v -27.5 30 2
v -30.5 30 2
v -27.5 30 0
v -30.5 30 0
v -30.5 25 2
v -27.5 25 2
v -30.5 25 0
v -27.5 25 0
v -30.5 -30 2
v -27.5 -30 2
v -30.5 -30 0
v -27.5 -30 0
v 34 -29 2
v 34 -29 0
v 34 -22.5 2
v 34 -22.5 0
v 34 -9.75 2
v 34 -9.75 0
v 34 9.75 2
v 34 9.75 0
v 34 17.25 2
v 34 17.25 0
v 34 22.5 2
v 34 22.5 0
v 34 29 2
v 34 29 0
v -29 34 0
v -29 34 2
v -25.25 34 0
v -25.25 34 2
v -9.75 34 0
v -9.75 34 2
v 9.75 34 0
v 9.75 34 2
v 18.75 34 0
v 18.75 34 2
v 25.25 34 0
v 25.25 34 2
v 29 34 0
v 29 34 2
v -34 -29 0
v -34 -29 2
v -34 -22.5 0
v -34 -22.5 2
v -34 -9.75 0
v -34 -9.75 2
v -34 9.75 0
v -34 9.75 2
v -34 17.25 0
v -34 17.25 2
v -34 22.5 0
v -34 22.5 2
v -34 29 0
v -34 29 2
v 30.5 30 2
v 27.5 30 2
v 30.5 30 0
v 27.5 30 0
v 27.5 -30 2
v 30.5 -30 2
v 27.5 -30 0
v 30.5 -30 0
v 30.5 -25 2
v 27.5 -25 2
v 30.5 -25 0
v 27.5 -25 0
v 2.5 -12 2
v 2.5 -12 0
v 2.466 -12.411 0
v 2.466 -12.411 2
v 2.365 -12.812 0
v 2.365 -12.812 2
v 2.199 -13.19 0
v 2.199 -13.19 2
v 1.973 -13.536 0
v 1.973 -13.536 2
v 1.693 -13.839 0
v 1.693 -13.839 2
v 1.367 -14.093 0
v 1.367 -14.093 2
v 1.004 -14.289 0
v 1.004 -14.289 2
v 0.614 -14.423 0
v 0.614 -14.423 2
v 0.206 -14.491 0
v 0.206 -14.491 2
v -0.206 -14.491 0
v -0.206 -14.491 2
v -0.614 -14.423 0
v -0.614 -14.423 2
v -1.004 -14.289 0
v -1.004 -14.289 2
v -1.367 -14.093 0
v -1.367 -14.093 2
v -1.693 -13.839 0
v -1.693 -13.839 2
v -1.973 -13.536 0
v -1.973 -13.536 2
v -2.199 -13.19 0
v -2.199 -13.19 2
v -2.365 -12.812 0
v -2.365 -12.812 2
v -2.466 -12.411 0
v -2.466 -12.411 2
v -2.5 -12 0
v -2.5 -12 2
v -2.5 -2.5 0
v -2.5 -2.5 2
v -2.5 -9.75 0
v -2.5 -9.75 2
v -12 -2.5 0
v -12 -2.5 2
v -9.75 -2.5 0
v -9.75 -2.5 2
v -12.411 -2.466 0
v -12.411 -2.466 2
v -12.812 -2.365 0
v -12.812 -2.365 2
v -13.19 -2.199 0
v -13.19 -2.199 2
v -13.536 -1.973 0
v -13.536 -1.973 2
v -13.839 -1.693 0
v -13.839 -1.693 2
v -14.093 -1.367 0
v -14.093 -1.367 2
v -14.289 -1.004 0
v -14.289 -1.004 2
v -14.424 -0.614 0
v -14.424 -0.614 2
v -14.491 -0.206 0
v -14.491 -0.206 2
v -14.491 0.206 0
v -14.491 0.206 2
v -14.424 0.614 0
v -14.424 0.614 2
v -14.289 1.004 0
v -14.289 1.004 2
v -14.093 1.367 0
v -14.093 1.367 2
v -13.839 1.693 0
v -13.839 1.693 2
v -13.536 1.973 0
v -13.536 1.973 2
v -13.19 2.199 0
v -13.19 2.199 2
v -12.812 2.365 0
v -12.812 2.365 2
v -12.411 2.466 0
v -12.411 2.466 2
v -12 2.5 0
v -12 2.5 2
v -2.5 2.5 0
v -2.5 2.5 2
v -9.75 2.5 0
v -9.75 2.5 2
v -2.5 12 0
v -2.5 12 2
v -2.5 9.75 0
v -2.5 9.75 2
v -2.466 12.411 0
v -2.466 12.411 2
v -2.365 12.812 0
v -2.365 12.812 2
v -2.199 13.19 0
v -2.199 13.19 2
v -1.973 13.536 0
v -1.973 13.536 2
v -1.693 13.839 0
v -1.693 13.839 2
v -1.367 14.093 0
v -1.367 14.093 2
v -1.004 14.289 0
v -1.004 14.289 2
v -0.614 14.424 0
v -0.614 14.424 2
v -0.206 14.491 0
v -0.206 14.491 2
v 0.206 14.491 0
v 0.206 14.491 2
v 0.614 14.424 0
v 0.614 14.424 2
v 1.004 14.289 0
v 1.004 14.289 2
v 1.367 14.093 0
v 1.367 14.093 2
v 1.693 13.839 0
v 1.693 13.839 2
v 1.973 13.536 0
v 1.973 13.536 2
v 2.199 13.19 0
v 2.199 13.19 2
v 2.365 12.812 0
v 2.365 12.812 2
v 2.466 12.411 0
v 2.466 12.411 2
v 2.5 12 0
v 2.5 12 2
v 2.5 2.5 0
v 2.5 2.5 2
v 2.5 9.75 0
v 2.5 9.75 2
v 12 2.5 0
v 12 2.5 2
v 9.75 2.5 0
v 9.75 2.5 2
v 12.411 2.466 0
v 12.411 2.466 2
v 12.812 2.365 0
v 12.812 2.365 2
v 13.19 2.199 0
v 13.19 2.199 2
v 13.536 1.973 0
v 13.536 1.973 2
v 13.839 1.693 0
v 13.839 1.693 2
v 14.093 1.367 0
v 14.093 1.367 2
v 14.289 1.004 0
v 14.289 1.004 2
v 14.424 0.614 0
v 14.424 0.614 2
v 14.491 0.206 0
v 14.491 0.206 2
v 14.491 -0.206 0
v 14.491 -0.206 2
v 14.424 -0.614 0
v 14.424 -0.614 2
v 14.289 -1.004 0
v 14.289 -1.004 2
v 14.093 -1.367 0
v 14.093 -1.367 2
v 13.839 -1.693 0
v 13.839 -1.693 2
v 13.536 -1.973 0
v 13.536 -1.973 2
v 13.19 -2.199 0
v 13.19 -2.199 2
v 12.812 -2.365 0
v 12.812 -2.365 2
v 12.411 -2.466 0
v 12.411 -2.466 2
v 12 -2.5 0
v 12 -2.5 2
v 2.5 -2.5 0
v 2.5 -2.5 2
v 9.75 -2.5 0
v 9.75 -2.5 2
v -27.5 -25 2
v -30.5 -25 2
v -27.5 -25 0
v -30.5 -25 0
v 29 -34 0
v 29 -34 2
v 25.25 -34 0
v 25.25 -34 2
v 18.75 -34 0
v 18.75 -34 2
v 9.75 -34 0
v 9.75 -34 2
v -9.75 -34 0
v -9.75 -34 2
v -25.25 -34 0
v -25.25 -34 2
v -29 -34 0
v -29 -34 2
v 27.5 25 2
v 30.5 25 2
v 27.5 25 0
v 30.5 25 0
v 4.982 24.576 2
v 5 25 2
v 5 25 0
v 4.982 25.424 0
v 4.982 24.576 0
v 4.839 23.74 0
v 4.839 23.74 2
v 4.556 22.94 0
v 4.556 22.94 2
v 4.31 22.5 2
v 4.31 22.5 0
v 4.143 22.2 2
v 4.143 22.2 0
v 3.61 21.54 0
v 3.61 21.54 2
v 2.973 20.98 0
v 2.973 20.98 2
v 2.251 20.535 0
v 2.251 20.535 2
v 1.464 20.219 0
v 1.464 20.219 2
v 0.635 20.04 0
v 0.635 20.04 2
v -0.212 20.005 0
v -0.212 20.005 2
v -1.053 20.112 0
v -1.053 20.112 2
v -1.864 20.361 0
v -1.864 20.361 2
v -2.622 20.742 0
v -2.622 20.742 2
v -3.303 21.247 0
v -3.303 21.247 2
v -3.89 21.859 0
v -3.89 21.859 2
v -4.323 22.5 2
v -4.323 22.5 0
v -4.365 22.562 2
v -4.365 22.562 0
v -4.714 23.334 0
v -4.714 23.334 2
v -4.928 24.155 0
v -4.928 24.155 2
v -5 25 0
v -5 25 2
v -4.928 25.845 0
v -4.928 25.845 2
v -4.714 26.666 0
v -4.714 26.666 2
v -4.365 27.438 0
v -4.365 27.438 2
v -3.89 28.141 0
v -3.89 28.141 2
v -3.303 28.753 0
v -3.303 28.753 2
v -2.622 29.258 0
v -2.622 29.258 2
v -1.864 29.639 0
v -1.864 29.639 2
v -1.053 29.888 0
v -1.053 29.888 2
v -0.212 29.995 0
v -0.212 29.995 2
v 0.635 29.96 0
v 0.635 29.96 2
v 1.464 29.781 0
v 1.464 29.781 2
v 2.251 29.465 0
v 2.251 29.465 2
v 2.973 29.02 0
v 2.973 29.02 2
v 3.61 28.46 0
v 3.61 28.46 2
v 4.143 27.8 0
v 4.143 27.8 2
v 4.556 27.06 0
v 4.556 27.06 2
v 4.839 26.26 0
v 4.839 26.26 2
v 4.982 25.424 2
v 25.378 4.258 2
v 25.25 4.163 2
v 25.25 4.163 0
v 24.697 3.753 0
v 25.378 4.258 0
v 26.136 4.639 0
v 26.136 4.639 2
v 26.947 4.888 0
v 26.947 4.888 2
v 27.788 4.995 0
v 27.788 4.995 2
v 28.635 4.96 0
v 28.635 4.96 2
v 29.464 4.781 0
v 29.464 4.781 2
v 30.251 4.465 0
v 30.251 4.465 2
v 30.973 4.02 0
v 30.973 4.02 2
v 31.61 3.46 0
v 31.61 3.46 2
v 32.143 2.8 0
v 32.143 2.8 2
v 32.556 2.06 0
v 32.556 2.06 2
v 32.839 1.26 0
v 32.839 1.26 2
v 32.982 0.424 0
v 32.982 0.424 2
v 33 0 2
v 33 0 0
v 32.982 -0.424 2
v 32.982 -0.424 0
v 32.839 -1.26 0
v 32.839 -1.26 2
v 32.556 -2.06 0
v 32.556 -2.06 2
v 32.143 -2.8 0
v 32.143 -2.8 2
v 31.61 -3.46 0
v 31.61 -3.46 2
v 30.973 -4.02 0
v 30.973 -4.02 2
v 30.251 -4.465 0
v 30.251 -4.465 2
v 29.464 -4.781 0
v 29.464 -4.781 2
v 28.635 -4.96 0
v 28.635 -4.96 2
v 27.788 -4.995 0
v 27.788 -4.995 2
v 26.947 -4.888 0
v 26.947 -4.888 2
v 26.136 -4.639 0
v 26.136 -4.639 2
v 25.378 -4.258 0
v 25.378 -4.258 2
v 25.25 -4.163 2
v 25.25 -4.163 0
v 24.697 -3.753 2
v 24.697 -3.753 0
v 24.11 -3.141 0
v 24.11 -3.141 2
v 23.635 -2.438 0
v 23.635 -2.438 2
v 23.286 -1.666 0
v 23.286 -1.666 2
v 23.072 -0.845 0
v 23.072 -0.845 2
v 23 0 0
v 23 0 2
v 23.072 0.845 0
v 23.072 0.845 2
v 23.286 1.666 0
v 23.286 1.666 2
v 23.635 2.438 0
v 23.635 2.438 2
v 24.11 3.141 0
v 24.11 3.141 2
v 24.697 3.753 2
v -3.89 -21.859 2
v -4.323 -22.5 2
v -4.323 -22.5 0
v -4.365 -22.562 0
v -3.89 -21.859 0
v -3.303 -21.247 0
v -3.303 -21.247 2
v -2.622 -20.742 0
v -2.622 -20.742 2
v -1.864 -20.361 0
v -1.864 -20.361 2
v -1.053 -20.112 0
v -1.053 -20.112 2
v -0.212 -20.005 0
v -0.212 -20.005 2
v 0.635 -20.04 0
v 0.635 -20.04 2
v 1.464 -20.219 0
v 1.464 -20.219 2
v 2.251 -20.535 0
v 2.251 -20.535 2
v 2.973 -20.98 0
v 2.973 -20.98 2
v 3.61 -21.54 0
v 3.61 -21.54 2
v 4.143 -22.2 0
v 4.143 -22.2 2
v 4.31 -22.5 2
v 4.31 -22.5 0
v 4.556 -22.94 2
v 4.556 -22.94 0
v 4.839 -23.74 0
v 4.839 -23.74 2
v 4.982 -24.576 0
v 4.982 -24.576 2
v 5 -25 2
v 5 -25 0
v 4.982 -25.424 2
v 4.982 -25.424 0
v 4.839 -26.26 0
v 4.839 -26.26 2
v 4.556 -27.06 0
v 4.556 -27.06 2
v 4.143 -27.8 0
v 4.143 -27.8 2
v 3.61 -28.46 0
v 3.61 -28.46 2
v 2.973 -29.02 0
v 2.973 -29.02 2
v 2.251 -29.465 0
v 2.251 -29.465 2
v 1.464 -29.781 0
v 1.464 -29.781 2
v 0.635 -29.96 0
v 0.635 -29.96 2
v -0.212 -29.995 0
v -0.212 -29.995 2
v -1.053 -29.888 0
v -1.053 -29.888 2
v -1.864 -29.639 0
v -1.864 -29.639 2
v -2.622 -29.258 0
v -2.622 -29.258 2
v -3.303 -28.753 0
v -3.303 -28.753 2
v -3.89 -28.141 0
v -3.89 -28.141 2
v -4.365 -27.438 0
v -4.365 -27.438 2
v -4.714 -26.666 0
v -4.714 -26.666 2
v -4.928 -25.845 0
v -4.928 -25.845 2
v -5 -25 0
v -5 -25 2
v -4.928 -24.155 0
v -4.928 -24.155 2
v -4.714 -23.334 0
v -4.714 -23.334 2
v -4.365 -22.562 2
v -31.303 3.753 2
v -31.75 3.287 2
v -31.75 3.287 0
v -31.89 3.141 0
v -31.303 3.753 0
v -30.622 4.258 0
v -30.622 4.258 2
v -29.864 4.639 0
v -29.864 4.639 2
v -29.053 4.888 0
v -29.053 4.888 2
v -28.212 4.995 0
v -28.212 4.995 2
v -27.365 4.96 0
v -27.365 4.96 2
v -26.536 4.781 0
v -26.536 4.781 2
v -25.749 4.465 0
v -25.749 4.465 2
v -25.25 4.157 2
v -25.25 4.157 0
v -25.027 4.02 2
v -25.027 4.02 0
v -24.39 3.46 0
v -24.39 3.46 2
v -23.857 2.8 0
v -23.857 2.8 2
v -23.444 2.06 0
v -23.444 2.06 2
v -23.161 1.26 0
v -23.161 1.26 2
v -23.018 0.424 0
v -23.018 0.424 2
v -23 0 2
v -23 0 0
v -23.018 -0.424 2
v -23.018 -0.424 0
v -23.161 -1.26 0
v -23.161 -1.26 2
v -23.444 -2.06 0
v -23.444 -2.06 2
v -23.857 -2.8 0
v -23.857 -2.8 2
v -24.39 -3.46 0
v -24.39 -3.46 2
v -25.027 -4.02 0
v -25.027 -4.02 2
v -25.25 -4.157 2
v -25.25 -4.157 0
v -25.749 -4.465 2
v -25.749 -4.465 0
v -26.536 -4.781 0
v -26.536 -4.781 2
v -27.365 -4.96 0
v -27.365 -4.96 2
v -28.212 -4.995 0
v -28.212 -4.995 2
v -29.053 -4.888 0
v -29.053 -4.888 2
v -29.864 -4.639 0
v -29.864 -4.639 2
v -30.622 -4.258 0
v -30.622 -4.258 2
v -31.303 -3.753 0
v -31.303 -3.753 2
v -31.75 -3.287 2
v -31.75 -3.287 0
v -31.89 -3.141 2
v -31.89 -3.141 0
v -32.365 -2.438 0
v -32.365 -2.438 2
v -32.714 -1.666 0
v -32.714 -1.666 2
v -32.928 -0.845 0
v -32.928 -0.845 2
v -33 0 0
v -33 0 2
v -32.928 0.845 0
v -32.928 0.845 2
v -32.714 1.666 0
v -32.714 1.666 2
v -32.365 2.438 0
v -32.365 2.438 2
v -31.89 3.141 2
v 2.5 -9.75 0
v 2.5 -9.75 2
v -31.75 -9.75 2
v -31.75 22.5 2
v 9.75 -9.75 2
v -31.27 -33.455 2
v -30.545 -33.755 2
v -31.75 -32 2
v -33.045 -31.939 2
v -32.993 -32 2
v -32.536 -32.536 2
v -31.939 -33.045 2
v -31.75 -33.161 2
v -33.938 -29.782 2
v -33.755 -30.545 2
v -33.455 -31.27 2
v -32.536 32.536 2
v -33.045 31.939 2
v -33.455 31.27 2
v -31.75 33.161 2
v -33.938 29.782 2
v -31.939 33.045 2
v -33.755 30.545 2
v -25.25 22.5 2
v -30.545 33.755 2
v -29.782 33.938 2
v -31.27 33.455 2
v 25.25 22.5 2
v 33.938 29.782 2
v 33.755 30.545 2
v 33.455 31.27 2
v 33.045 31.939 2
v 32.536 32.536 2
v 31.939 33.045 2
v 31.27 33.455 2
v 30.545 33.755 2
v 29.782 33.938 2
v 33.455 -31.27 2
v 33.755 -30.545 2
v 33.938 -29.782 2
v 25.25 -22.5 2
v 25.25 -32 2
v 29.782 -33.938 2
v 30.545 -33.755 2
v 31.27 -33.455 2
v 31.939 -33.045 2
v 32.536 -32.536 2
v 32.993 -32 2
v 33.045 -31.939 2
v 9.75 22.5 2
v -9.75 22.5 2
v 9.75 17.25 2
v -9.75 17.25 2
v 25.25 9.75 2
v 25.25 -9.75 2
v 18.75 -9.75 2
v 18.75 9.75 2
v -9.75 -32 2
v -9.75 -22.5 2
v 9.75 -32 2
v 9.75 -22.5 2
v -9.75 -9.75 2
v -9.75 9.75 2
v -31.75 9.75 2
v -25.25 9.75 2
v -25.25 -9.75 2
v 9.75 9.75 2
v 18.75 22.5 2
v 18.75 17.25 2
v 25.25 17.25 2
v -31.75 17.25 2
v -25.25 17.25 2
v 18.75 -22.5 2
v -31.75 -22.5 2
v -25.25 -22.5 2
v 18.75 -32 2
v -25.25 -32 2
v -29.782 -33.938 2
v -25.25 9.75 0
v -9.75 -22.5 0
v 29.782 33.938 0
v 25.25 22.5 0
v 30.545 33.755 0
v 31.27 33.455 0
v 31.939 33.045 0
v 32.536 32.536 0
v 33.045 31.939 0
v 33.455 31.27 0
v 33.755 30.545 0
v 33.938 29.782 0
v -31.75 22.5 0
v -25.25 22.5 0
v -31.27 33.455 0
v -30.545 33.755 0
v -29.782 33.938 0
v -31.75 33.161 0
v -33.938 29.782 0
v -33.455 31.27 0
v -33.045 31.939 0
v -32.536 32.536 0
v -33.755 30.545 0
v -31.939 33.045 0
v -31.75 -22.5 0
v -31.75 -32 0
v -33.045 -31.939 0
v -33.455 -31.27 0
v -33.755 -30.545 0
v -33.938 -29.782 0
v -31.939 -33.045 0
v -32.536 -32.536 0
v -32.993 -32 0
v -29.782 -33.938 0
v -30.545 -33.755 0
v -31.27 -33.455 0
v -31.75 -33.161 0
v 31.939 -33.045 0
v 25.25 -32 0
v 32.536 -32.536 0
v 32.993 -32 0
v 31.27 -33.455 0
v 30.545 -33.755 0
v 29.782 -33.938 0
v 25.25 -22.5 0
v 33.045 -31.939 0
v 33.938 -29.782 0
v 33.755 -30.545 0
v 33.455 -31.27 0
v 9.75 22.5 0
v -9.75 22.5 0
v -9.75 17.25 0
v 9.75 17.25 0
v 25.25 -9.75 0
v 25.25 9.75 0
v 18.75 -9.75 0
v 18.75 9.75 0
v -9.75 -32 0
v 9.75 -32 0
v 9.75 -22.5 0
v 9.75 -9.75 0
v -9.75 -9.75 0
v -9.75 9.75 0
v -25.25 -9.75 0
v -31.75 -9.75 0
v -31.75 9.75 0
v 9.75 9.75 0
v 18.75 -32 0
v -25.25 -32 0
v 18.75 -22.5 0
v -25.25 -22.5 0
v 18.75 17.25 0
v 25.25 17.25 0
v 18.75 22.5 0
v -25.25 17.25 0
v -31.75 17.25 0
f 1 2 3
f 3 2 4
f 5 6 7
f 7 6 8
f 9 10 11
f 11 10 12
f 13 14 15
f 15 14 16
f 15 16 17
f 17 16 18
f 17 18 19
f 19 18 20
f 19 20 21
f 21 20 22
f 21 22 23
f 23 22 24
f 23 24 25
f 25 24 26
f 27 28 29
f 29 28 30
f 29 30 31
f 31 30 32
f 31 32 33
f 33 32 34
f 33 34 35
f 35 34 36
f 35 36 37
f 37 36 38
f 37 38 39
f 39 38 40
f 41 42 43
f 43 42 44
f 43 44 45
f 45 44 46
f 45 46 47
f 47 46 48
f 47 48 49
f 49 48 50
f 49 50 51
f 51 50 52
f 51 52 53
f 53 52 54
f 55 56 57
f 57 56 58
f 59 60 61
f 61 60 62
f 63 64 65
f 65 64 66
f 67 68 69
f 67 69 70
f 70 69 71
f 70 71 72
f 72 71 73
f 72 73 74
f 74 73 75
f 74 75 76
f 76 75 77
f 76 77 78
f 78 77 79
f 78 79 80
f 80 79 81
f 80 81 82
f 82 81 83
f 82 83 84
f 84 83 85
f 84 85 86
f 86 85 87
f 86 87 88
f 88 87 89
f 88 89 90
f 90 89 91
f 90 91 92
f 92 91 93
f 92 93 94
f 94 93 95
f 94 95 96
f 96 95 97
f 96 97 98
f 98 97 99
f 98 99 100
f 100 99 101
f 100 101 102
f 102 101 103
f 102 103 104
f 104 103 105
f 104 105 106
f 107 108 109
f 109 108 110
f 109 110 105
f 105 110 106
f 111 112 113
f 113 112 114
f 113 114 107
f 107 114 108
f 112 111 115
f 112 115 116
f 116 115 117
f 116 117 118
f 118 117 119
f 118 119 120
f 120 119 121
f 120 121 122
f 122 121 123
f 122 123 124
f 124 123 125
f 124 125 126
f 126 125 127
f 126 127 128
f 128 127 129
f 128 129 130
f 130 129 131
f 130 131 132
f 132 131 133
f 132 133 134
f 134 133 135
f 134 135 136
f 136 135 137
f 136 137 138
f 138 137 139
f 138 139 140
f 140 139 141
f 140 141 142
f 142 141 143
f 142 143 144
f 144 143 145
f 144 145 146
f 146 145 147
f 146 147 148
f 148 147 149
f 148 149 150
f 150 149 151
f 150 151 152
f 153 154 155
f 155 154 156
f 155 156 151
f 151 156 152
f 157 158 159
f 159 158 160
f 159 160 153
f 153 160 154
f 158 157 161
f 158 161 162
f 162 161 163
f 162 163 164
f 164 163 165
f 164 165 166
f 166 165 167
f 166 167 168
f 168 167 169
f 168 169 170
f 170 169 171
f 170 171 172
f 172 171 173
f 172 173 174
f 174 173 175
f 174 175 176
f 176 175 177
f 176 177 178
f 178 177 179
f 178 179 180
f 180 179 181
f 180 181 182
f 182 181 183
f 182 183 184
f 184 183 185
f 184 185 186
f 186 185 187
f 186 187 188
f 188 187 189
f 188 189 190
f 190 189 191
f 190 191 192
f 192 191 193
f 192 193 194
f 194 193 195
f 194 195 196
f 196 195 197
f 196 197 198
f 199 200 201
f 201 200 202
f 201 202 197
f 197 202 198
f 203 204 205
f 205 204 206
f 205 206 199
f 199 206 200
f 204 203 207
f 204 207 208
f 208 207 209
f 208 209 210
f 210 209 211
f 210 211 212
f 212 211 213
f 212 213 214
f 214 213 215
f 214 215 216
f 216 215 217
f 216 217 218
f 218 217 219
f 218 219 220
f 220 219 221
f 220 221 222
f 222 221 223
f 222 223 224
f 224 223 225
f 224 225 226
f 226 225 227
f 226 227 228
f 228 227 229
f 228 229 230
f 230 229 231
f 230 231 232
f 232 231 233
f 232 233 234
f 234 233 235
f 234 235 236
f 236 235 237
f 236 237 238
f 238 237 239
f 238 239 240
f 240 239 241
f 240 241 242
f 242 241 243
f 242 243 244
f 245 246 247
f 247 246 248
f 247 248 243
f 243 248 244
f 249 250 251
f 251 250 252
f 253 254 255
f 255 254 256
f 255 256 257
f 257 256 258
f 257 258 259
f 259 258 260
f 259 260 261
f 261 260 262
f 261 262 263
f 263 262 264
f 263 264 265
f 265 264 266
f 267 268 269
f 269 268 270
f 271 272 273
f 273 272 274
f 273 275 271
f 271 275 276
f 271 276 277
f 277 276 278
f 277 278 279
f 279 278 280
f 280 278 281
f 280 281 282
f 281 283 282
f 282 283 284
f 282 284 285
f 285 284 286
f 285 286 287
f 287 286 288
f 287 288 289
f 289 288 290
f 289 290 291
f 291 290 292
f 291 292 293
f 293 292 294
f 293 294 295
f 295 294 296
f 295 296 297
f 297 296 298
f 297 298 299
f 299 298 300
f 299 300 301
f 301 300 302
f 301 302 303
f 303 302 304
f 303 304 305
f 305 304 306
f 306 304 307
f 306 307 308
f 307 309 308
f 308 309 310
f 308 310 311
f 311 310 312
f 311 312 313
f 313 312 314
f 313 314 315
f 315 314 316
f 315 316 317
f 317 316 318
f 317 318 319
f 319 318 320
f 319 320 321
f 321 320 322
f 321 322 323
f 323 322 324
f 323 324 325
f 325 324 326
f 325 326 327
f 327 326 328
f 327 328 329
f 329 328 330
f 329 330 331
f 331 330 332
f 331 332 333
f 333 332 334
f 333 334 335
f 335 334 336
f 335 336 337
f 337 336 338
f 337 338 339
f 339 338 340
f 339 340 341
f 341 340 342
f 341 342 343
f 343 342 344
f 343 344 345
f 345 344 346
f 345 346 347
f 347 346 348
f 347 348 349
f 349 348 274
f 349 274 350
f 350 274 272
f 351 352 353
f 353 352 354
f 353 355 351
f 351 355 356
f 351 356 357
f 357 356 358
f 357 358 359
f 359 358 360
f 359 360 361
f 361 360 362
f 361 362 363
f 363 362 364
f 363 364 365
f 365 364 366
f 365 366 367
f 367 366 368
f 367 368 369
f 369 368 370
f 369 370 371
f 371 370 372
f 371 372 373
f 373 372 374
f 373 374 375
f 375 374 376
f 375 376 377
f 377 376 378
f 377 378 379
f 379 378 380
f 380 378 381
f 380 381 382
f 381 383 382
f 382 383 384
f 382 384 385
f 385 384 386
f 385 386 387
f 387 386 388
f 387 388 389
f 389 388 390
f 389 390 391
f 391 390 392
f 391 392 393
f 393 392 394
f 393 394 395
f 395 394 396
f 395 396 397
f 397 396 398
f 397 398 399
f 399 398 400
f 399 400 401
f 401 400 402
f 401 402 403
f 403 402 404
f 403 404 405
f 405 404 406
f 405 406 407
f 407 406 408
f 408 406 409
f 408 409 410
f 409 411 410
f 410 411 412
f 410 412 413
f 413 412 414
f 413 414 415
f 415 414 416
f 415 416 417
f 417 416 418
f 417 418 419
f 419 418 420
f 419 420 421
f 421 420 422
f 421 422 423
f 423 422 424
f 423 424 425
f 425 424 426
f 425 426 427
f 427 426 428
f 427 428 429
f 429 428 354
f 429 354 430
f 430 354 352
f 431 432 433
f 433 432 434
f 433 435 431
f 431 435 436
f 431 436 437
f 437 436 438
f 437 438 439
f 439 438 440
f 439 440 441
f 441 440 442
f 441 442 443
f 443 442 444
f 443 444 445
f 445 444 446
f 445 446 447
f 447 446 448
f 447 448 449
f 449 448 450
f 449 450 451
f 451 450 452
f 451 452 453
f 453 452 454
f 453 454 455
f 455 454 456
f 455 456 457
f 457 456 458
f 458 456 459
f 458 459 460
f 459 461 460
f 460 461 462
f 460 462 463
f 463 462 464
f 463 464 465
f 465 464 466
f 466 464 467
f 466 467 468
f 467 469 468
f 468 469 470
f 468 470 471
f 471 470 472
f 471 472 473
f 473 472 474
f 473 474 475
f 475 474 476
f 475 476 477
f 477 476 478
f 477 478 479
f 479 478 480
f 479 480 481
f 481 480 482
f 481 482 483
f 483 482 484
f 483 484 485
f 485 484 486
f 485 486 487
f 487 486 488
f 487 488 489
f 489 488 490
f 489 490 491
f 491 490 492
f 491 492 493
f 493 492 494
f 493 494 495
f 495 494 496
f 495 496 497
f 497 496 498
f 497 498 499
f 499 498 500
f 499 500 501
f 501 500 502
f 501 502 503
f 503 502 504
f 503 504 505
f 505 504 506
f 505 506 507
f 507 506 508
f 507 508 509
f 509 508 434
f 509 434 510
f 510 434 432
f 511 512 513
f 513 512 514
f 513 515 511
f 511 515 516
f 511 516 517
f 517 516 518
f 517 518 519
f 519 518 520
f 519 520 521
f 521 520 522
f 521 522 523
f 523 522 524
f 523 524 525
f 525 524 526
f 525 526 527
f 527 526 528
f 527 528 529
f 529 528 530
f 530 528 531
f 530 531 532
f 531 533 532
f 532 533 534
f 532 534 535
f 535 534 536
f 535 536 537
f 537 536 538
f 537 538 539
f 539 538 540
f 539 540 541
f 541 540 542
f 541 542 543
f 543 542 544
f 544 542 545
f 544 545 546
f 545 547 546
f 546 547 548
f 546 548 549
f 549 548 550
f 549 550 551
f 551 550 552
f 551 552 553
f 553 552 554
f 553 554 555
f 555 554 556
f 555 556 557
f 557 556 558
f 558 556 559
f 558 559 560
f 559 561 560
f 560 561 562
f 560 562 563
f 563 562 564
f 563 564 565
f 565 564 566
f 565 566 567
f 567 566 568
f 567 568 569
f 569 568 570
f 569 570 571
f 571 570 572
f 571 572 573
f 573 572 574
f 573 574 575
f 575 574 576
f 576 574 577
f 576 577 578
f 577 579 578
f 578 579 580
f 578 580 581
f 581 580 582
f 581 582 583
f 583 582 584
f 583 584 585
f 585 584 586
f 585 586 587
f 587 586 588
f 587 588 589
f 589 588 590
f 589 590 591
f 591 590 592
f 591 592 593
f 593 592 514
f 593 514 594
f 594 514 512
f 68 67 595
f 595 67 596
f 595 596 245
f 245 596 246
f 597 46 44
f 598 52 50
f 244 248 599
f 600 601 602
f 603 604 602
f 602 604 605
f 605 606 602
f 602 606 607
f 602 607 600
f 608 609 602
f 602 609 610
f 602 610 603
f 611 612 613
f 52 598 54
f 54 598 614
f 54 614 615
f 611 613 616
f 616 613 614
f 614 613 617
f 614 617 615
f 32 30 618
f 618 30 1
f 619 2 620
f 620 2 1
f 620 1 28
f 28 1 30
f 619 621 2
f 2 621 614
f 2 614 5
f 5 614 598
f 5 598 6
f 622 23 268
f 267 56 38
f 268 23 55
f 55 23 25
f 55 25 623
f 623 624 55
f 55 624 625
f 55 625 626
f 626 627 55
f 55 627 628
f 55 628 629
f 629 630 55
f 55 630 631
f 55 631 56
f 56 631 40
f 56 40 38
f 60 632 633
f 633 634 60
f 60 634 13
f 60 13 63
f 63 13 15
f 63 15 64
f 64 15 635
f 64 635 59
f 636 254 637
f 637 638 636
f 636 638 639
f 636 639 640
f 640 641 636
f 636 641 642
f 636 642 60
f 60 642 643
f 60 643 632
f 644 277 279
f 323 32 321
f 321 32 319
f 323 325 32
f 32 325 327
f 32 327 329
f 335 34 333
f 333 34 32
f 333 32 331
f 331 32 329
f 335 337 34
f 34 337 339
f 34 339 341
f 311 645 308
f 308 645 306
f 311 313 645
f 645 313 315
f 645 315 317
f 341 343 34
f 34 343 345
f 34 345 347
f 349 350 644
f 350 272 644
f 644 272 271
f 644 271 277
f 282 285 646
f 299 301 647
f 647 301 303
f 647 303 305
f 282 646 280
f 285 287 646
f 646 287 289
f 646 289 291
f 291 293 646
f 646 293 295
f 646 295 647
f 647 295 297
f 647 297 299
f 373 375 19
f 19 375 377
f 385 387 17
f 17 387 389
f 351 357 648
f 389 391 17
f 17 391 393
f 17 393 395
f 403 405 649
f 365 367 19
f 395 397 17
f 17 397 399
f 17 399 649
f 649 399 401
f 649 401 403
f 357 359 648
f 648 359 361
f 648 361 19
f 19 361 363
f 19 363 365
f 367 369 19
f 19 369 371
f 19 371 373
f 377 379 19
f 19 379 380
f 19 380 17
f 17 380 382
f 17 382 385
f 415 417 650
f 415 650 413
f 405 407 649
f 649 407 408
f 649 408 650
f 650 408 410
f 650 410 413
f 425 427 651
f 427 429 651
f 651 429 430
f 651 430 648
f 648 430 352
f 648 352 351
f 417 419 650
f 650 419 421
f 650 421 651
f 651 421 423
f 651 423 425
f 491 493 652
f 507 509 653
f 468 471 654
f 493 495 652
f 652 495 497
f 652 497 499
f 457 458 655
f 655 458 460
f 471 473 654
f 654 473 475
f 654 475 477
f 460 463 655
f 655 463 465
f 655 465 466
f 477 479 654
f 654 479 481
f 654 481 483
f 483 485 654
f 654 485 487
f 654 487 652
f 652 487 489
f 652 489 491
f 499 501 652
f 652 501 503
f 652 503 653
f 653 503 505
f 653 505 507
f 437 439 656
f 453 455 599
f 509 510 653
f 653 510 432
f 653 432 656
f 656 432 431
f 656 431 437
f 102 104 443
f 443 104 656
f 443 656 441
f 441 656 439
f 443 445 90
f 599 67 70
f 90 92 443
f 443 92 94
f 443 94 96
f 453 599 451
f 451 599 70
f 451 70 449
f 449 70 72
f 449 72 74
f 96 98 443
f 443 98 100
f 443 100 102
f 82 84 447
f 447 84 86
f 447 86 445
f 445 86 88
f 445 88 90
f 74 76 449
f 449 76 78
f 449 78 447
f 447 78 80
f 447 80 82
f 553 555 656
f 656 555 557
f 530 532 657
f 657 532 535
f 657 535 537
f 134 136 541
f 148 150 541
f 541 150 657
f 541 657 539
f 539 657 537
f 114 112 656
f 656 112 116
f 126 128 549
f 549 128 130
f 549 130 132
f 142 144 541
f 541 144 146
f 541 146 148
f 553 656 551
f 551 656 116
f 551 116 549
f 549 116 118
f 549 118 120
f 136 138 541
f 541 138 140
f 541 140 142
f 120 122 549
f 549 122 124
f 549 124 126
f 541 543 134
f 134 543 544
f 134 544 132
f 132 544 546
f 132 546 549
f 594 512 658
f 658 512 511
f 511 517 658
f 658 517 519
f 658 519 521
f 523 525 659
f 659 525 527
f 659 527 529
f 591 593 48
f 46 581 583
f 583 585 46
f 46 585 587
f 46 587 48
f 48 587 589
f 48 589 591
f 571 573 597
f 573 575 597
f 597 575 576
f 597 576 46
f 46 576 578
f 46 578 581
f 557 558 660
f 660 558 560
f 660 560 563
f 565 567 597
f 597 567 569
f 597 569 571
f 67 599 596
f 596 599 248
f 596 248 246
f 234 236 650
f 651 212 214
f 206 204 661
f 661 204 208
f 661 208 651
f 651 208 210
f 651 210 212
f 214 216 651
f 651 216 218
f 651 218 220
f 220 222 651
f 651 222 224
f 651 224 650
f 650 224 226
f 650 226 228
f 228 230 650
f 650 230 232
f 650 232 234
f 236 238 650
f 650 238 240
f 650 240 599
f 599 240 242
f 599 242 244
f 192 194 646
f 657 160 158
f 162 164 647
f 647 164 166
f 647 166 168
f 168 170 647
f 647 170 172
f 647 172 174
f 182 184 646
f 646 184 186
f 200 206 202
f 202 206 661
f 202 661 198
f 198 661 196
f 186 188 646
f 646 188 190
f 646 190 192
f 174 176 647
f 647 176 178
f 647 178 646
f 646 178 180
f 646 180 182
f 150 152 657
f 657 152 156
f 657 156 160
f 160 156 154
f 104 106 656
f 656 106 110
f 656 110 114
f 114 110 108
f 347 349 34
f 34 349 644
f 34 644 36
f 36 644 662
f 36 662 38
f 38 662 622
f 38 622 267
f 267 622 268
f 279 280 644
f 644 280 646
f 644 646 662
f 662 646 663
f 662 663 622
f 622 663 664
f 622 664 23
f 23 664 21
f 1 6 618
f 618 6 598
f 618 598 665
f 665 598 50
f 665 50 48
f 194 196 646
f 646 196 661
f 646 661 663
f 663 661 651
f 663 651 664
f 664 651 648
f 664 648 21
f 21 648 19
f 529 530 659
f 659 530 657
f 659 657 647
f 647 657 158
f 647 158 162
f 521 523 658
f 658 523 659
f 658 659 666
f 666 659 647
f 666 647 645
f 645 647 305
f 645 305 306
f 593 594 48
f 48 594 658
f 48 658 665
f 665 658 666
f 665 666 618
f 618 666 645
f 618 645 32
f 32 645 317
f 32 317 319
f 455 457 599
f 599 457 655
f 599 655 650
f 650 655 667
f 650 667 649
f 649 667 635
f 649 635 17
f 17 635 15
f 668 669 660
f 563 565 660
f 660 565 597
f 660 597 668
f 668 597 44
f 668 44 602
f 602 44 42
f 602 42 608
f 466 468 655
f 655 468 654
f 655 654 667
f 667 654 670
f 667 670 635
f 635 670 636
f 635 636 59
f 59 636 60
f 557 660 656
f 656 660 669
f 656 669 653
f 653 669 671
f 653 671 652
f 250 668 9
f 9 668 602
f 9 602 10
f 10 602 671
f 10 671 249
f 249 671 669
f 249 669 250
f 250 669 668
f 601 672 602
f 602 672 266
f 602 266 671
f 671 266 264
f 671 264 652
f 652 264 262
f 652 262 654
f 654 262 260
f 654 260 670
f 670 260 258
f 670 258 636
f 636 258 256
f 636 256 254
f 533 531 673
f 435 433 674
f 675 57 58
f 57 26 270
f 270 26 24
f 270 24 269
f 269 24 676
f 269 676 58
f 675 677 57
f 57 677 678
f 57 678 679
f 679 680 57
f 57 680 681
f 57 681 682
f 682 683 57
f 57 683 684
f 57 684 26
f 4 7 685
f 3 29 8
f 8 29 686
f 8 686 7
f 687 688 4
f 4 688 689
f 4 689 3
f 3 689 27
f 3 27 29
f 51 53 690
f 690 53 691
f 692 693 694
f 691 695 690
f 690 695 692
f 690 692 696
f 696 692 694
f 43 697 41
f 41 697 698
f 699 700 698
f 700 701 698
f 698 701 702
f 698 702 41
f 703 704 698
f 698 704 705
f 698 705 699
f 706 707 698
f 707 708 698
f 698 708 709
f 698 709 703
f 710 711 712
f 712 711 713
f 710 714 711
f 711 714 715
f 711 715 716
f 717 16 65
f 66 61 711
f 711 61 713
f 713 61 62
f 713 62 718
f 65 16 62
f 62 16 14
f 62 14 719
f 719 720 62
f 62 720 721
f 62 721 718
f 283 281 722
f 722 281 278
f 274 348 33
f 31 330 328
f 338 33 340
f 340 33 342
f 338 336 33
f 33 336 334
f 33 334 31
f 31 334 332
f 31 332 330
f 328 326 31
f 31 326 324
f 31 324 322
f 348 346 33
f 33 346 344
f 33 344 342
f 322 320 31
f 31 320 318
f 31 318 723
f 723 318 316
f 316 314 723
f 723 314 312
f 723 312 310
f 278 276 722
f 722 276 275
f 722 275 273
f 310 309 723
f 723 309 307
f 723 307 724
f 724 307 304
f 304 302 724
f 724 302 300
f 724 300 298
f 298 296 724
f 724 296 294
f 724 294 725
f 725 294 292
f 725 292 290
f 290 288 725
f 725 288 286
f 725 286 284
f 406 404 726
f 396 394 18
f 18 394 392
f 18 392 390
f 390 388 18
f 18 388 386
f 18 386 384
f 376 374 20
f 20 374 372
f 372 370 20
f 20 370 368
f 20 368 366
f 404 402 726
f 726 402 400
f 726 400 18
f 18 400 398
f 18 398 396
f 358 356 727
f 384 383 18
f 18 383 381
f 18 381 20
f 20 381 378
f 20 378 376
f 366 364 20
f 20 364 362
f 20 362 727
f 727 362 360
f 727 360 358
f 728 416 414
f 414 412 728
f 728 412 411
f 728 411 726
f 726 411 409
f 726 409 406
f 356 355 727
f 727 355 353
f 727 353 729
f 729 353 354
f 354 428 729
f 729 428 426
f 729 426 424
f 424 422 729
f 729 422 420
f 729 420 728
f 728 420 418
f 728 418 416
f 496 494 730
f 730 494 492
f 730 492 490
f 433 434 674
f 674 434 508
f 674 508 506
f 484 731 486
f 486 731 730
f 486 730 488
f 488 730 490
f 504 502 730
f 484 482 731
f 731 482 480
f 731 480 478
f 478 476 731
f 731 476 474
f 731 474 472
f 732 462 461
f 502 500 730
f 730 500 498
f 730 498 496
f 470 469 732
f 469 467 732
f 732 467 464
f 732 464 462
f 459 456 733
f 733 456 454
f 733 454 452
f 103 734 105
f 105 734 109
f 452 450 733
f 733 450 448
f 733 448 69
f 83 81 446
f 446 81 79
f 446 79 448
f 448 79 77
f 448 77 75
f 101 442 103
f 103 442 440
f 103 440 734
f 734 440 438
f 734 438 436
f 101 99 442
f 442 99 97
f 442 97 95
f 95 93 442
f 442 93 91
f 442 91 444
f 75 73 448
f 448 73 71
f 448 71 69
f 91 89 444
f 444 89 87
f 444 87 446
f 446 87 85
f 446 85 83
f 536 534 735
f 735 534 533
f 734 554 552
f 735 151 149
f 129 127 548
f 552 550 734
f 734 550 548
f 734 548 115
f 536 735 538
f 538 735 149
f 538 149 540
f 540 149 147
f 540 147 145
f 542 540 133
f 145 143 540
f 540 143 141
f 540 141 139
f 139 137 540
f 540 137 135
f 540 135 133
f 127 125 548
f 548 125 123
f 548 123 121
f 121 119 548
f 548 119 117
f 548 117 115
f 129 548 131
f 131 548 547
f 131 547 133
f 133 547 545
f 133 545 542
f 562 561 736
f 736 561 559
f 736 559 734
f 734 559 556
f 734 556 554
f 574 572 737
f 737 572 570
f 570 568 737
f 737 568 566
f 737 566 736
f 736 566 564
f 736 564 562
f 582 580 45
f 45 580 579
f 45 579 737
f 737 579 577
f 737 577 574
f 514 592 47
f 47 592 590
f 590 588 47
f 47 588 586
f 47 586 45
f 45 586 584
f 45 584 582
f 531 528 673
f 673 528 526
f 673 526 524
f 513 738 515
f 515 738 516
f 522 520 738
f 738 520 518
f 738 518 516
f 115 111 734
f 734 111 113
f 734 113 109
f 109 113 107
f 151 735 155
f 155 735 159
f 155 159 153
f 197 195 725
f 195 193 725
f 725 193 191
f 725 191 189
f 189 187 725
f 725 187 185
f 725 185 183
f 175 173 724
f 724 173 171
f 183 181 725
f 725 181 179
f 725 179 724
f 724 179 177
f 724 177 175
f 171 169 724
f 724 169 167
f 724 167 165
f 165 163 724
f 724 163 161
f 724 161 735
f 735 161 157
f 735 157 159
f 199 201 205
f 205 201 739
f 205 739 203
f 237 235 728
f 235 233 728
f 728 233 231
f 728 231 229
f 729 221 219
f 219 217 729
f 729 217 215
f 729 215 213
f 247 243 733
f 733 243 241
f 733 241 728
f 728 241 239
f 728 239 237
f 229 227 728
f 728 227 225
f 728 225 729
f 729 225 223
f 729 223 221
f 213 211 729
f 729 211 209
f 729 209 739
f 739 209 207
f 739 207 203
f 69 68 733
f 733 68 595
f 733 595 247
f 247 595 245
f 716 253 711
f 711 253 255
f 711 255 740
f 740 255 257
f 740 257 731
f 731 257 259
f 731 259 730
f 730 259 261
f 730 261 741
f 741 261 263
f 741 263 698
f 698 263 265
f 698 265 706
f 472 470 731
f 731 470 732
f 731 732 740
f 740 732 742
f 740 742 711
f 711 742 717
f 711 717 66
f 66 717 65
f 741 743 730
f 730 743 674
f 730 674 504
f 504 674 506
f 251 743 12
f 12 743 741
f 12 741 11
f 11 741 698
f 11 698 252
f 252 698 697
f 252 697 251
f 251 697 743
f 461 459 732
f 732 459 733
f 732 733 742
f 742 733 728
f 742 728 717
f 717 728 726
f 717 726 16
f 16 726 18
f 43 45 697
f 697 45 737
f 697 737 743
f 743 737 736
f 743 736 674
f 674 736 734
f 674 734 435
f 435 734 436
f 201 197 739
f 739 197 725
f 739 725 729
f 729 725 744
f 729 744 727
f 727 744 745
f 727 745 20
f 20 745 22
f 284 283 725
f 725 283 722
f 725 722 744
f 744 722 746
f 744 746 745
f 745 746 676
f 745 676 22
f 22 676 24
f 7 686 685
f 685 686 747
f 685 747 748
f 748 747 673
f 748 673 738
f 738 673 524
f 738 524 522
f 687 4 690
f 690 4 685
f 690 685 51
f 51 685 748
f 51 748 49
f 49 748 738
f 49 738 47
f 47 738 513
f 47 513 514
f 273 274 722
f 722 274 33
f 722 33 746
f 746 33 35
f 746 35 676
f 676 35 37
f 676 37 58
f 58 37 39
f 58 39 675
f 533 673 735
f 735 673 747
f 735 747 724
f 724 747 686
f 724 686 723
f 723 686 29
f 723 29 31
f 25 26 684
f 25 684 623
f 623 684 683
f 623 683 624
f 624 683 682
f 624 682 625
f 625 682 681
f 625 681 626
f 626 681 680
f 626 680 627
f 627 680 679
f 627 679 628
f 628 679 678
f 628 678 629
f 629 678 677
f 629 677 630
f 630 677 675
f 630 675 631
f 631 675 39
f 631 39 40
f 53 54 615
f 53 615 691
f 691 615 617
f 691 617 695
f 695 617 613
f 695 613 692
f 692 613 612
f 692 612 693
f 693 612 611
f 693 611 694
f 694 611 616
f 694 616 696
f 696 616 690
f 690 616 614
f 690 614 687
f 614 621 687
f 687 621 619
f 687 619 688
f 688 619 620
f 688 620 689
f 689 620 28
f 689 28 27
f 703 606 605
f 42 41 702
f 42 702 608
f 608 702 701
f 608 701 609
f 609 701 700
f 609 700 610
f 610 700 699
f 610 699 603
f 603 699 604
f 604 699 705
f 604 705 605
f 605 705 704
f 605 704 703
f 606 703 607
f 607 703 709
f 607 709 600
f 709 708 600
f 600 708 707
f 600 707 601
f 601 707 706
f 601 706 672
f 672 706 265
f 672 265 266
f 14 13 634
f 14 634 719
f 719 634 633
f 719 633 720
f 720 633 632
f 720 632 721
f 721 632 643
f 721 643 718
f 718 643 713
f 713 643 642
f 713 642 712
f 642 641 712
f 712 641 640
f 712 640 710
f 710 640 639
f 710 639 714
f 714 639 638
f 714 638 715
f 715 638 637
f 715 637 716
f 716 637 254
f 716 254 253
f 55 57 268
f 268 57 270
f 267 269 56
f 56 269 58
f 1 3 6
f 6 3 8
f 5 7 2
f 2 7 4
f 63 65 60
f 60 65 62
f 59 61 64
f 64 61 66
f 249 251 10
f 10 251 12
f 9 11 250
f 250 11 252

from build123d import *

# Parameters (mm, degrees)
SKETCH1_W           = 68
SKETCH1_H           = 68
SKETCH1_W_2         = 2
SKETCH1_H_2         = 5
SKETCH1_R           = 5
BOSS_EXTRUDE1_DEPTH = 2
FILLET2_R           = 5
FILLET3_R           = 5
FILLET4_R           = 5
FILLET5_R           = 5
SKETCH2_W           = 3
SKETCH2_H           = 5
CUT_EXTRUDE1_DEPTH  = 10


with BuildPart() as part:
    # Sketch1 → Boss-Extrude1 (new body)
    with BuildSketch(Plane.XY):
        Rectangle(SKETCH1_W, SKETCH1_H)
        with Locations((-29, -27.5)):
            Rectangle(SKETCH1_W_2, SKETCH1_H_2, mode=Mode.SUBTRACT)
        with Locations((0, -25)):
            Circle(SKETCH1_R, mode=Mode.SUBTRACT)
        with Locations((29, -27.5)):
            Rectangle(SKETCH1_W_2, SKETCH1_H_2, mode=Mode.SUBTRACT)
        with Locations((-28, 0)):
            Circle(SKETCH1_R, mode=Mode.SUBTRACT)
        with Locations((-29, 27.5)):
            Rectangle(SKETCH1_W_2, SKETCH1_H_2, mode=Mode.SUBTRACT)
        with BuildLine():
            ThreePointArc((-12, -2.5), (-14.5, 0), (-12, 2.5))
            Line((-12, 2.5), (-2.5, 2.5))
            Line((-2.5, 2.5), (-2.5, 12))
            ThreePointArc((-2.5, 12), (0, 14.5), (2.5, 12))
            Line((2.5, 12), (2.5, 2.5))
            Line((2.5, 2.5), (12, 2.5))
            ThreePointArc((12, 2.5), (14.5, 0), (12, -2.5))
            Line((12, -2.5), (2.5, -2.5))
            Line((2.5, -2.5), (2.5, -12))
            ThreePointArc((2.5, -12), (0, -14.5), (-2.5, -12))
            Line((-2.5, -12), (-2.5, -2.5))
            Line((-2.5, -2.5), (-12, -2.5))
        make_face(mode=Mode.SUBTRACT)
        with Locations((28, 0)):
            Circle(SKETCH1_R, mode=Mode.SUBTRACT)
        with Locations((0, 25)):
            Circle(SKETCH1_R, mode=Mode.SUBTRACT)
        with Locations((29, 27.5)):
            Rectangle(SKETCH1_W_2, SKETCH1_H_2, mode=Mode.SUBTRACT)
    extrude(amount=BOSS_EXTRUDE1_DEPTH)

    # Fillet2
    fillet2_edges = [part.edges().sort_by_distance(p)[0] for p in [
        (34, 34, 1),
    ]]
    fillet(fillet2_edges, radius=FILLET2_R)

    # Fillet3
    fillet3_edges = [part.edges().sort_by_distance(p)[0] for p in [
        (-34, 34, 1),
    ]]
    fillet(fillet3_edges, radius=FILLET3_R)

    # Fillet4
    fillet4_edges = [part.edges().sort_by_distance(p)[0] for p in [
        (-34, -34, 1),
    ]]
    fillet(fillet4_edges, radius=FILLET4_R)

    # Fillet5
    fillet5_edges = [part.edges().sort_by_distance(p)[0] for p in [
        (34, -34, 1),
    ]]
    fillet(fillet5_edges, radius=FILLET5_R)

    # Sketch2 → Cut-Extrude1 (cut)
    with BuildSketch(Plane.XY.offset(2)):
        with Locations((29, 27.5)):
            Rectangle(SKETCH2_W, SKETCH2_H)
        with Locations((-29, 27.5)):
            Rectangle(SKETCH2_W, SKETCH2_H)
        with Locations((29, -27.5)):
            Rectangle(SKETCH2_W, SKETCH2_H)
        with Locations((-29, -27.5)):
            Rectangle(SKETCH2_W, SKETCH2_H)
    extrude(amount=-CUT_EXTRUDE1_DEPTH, mode=Mode.SUBTRACT)


solid = part.part
